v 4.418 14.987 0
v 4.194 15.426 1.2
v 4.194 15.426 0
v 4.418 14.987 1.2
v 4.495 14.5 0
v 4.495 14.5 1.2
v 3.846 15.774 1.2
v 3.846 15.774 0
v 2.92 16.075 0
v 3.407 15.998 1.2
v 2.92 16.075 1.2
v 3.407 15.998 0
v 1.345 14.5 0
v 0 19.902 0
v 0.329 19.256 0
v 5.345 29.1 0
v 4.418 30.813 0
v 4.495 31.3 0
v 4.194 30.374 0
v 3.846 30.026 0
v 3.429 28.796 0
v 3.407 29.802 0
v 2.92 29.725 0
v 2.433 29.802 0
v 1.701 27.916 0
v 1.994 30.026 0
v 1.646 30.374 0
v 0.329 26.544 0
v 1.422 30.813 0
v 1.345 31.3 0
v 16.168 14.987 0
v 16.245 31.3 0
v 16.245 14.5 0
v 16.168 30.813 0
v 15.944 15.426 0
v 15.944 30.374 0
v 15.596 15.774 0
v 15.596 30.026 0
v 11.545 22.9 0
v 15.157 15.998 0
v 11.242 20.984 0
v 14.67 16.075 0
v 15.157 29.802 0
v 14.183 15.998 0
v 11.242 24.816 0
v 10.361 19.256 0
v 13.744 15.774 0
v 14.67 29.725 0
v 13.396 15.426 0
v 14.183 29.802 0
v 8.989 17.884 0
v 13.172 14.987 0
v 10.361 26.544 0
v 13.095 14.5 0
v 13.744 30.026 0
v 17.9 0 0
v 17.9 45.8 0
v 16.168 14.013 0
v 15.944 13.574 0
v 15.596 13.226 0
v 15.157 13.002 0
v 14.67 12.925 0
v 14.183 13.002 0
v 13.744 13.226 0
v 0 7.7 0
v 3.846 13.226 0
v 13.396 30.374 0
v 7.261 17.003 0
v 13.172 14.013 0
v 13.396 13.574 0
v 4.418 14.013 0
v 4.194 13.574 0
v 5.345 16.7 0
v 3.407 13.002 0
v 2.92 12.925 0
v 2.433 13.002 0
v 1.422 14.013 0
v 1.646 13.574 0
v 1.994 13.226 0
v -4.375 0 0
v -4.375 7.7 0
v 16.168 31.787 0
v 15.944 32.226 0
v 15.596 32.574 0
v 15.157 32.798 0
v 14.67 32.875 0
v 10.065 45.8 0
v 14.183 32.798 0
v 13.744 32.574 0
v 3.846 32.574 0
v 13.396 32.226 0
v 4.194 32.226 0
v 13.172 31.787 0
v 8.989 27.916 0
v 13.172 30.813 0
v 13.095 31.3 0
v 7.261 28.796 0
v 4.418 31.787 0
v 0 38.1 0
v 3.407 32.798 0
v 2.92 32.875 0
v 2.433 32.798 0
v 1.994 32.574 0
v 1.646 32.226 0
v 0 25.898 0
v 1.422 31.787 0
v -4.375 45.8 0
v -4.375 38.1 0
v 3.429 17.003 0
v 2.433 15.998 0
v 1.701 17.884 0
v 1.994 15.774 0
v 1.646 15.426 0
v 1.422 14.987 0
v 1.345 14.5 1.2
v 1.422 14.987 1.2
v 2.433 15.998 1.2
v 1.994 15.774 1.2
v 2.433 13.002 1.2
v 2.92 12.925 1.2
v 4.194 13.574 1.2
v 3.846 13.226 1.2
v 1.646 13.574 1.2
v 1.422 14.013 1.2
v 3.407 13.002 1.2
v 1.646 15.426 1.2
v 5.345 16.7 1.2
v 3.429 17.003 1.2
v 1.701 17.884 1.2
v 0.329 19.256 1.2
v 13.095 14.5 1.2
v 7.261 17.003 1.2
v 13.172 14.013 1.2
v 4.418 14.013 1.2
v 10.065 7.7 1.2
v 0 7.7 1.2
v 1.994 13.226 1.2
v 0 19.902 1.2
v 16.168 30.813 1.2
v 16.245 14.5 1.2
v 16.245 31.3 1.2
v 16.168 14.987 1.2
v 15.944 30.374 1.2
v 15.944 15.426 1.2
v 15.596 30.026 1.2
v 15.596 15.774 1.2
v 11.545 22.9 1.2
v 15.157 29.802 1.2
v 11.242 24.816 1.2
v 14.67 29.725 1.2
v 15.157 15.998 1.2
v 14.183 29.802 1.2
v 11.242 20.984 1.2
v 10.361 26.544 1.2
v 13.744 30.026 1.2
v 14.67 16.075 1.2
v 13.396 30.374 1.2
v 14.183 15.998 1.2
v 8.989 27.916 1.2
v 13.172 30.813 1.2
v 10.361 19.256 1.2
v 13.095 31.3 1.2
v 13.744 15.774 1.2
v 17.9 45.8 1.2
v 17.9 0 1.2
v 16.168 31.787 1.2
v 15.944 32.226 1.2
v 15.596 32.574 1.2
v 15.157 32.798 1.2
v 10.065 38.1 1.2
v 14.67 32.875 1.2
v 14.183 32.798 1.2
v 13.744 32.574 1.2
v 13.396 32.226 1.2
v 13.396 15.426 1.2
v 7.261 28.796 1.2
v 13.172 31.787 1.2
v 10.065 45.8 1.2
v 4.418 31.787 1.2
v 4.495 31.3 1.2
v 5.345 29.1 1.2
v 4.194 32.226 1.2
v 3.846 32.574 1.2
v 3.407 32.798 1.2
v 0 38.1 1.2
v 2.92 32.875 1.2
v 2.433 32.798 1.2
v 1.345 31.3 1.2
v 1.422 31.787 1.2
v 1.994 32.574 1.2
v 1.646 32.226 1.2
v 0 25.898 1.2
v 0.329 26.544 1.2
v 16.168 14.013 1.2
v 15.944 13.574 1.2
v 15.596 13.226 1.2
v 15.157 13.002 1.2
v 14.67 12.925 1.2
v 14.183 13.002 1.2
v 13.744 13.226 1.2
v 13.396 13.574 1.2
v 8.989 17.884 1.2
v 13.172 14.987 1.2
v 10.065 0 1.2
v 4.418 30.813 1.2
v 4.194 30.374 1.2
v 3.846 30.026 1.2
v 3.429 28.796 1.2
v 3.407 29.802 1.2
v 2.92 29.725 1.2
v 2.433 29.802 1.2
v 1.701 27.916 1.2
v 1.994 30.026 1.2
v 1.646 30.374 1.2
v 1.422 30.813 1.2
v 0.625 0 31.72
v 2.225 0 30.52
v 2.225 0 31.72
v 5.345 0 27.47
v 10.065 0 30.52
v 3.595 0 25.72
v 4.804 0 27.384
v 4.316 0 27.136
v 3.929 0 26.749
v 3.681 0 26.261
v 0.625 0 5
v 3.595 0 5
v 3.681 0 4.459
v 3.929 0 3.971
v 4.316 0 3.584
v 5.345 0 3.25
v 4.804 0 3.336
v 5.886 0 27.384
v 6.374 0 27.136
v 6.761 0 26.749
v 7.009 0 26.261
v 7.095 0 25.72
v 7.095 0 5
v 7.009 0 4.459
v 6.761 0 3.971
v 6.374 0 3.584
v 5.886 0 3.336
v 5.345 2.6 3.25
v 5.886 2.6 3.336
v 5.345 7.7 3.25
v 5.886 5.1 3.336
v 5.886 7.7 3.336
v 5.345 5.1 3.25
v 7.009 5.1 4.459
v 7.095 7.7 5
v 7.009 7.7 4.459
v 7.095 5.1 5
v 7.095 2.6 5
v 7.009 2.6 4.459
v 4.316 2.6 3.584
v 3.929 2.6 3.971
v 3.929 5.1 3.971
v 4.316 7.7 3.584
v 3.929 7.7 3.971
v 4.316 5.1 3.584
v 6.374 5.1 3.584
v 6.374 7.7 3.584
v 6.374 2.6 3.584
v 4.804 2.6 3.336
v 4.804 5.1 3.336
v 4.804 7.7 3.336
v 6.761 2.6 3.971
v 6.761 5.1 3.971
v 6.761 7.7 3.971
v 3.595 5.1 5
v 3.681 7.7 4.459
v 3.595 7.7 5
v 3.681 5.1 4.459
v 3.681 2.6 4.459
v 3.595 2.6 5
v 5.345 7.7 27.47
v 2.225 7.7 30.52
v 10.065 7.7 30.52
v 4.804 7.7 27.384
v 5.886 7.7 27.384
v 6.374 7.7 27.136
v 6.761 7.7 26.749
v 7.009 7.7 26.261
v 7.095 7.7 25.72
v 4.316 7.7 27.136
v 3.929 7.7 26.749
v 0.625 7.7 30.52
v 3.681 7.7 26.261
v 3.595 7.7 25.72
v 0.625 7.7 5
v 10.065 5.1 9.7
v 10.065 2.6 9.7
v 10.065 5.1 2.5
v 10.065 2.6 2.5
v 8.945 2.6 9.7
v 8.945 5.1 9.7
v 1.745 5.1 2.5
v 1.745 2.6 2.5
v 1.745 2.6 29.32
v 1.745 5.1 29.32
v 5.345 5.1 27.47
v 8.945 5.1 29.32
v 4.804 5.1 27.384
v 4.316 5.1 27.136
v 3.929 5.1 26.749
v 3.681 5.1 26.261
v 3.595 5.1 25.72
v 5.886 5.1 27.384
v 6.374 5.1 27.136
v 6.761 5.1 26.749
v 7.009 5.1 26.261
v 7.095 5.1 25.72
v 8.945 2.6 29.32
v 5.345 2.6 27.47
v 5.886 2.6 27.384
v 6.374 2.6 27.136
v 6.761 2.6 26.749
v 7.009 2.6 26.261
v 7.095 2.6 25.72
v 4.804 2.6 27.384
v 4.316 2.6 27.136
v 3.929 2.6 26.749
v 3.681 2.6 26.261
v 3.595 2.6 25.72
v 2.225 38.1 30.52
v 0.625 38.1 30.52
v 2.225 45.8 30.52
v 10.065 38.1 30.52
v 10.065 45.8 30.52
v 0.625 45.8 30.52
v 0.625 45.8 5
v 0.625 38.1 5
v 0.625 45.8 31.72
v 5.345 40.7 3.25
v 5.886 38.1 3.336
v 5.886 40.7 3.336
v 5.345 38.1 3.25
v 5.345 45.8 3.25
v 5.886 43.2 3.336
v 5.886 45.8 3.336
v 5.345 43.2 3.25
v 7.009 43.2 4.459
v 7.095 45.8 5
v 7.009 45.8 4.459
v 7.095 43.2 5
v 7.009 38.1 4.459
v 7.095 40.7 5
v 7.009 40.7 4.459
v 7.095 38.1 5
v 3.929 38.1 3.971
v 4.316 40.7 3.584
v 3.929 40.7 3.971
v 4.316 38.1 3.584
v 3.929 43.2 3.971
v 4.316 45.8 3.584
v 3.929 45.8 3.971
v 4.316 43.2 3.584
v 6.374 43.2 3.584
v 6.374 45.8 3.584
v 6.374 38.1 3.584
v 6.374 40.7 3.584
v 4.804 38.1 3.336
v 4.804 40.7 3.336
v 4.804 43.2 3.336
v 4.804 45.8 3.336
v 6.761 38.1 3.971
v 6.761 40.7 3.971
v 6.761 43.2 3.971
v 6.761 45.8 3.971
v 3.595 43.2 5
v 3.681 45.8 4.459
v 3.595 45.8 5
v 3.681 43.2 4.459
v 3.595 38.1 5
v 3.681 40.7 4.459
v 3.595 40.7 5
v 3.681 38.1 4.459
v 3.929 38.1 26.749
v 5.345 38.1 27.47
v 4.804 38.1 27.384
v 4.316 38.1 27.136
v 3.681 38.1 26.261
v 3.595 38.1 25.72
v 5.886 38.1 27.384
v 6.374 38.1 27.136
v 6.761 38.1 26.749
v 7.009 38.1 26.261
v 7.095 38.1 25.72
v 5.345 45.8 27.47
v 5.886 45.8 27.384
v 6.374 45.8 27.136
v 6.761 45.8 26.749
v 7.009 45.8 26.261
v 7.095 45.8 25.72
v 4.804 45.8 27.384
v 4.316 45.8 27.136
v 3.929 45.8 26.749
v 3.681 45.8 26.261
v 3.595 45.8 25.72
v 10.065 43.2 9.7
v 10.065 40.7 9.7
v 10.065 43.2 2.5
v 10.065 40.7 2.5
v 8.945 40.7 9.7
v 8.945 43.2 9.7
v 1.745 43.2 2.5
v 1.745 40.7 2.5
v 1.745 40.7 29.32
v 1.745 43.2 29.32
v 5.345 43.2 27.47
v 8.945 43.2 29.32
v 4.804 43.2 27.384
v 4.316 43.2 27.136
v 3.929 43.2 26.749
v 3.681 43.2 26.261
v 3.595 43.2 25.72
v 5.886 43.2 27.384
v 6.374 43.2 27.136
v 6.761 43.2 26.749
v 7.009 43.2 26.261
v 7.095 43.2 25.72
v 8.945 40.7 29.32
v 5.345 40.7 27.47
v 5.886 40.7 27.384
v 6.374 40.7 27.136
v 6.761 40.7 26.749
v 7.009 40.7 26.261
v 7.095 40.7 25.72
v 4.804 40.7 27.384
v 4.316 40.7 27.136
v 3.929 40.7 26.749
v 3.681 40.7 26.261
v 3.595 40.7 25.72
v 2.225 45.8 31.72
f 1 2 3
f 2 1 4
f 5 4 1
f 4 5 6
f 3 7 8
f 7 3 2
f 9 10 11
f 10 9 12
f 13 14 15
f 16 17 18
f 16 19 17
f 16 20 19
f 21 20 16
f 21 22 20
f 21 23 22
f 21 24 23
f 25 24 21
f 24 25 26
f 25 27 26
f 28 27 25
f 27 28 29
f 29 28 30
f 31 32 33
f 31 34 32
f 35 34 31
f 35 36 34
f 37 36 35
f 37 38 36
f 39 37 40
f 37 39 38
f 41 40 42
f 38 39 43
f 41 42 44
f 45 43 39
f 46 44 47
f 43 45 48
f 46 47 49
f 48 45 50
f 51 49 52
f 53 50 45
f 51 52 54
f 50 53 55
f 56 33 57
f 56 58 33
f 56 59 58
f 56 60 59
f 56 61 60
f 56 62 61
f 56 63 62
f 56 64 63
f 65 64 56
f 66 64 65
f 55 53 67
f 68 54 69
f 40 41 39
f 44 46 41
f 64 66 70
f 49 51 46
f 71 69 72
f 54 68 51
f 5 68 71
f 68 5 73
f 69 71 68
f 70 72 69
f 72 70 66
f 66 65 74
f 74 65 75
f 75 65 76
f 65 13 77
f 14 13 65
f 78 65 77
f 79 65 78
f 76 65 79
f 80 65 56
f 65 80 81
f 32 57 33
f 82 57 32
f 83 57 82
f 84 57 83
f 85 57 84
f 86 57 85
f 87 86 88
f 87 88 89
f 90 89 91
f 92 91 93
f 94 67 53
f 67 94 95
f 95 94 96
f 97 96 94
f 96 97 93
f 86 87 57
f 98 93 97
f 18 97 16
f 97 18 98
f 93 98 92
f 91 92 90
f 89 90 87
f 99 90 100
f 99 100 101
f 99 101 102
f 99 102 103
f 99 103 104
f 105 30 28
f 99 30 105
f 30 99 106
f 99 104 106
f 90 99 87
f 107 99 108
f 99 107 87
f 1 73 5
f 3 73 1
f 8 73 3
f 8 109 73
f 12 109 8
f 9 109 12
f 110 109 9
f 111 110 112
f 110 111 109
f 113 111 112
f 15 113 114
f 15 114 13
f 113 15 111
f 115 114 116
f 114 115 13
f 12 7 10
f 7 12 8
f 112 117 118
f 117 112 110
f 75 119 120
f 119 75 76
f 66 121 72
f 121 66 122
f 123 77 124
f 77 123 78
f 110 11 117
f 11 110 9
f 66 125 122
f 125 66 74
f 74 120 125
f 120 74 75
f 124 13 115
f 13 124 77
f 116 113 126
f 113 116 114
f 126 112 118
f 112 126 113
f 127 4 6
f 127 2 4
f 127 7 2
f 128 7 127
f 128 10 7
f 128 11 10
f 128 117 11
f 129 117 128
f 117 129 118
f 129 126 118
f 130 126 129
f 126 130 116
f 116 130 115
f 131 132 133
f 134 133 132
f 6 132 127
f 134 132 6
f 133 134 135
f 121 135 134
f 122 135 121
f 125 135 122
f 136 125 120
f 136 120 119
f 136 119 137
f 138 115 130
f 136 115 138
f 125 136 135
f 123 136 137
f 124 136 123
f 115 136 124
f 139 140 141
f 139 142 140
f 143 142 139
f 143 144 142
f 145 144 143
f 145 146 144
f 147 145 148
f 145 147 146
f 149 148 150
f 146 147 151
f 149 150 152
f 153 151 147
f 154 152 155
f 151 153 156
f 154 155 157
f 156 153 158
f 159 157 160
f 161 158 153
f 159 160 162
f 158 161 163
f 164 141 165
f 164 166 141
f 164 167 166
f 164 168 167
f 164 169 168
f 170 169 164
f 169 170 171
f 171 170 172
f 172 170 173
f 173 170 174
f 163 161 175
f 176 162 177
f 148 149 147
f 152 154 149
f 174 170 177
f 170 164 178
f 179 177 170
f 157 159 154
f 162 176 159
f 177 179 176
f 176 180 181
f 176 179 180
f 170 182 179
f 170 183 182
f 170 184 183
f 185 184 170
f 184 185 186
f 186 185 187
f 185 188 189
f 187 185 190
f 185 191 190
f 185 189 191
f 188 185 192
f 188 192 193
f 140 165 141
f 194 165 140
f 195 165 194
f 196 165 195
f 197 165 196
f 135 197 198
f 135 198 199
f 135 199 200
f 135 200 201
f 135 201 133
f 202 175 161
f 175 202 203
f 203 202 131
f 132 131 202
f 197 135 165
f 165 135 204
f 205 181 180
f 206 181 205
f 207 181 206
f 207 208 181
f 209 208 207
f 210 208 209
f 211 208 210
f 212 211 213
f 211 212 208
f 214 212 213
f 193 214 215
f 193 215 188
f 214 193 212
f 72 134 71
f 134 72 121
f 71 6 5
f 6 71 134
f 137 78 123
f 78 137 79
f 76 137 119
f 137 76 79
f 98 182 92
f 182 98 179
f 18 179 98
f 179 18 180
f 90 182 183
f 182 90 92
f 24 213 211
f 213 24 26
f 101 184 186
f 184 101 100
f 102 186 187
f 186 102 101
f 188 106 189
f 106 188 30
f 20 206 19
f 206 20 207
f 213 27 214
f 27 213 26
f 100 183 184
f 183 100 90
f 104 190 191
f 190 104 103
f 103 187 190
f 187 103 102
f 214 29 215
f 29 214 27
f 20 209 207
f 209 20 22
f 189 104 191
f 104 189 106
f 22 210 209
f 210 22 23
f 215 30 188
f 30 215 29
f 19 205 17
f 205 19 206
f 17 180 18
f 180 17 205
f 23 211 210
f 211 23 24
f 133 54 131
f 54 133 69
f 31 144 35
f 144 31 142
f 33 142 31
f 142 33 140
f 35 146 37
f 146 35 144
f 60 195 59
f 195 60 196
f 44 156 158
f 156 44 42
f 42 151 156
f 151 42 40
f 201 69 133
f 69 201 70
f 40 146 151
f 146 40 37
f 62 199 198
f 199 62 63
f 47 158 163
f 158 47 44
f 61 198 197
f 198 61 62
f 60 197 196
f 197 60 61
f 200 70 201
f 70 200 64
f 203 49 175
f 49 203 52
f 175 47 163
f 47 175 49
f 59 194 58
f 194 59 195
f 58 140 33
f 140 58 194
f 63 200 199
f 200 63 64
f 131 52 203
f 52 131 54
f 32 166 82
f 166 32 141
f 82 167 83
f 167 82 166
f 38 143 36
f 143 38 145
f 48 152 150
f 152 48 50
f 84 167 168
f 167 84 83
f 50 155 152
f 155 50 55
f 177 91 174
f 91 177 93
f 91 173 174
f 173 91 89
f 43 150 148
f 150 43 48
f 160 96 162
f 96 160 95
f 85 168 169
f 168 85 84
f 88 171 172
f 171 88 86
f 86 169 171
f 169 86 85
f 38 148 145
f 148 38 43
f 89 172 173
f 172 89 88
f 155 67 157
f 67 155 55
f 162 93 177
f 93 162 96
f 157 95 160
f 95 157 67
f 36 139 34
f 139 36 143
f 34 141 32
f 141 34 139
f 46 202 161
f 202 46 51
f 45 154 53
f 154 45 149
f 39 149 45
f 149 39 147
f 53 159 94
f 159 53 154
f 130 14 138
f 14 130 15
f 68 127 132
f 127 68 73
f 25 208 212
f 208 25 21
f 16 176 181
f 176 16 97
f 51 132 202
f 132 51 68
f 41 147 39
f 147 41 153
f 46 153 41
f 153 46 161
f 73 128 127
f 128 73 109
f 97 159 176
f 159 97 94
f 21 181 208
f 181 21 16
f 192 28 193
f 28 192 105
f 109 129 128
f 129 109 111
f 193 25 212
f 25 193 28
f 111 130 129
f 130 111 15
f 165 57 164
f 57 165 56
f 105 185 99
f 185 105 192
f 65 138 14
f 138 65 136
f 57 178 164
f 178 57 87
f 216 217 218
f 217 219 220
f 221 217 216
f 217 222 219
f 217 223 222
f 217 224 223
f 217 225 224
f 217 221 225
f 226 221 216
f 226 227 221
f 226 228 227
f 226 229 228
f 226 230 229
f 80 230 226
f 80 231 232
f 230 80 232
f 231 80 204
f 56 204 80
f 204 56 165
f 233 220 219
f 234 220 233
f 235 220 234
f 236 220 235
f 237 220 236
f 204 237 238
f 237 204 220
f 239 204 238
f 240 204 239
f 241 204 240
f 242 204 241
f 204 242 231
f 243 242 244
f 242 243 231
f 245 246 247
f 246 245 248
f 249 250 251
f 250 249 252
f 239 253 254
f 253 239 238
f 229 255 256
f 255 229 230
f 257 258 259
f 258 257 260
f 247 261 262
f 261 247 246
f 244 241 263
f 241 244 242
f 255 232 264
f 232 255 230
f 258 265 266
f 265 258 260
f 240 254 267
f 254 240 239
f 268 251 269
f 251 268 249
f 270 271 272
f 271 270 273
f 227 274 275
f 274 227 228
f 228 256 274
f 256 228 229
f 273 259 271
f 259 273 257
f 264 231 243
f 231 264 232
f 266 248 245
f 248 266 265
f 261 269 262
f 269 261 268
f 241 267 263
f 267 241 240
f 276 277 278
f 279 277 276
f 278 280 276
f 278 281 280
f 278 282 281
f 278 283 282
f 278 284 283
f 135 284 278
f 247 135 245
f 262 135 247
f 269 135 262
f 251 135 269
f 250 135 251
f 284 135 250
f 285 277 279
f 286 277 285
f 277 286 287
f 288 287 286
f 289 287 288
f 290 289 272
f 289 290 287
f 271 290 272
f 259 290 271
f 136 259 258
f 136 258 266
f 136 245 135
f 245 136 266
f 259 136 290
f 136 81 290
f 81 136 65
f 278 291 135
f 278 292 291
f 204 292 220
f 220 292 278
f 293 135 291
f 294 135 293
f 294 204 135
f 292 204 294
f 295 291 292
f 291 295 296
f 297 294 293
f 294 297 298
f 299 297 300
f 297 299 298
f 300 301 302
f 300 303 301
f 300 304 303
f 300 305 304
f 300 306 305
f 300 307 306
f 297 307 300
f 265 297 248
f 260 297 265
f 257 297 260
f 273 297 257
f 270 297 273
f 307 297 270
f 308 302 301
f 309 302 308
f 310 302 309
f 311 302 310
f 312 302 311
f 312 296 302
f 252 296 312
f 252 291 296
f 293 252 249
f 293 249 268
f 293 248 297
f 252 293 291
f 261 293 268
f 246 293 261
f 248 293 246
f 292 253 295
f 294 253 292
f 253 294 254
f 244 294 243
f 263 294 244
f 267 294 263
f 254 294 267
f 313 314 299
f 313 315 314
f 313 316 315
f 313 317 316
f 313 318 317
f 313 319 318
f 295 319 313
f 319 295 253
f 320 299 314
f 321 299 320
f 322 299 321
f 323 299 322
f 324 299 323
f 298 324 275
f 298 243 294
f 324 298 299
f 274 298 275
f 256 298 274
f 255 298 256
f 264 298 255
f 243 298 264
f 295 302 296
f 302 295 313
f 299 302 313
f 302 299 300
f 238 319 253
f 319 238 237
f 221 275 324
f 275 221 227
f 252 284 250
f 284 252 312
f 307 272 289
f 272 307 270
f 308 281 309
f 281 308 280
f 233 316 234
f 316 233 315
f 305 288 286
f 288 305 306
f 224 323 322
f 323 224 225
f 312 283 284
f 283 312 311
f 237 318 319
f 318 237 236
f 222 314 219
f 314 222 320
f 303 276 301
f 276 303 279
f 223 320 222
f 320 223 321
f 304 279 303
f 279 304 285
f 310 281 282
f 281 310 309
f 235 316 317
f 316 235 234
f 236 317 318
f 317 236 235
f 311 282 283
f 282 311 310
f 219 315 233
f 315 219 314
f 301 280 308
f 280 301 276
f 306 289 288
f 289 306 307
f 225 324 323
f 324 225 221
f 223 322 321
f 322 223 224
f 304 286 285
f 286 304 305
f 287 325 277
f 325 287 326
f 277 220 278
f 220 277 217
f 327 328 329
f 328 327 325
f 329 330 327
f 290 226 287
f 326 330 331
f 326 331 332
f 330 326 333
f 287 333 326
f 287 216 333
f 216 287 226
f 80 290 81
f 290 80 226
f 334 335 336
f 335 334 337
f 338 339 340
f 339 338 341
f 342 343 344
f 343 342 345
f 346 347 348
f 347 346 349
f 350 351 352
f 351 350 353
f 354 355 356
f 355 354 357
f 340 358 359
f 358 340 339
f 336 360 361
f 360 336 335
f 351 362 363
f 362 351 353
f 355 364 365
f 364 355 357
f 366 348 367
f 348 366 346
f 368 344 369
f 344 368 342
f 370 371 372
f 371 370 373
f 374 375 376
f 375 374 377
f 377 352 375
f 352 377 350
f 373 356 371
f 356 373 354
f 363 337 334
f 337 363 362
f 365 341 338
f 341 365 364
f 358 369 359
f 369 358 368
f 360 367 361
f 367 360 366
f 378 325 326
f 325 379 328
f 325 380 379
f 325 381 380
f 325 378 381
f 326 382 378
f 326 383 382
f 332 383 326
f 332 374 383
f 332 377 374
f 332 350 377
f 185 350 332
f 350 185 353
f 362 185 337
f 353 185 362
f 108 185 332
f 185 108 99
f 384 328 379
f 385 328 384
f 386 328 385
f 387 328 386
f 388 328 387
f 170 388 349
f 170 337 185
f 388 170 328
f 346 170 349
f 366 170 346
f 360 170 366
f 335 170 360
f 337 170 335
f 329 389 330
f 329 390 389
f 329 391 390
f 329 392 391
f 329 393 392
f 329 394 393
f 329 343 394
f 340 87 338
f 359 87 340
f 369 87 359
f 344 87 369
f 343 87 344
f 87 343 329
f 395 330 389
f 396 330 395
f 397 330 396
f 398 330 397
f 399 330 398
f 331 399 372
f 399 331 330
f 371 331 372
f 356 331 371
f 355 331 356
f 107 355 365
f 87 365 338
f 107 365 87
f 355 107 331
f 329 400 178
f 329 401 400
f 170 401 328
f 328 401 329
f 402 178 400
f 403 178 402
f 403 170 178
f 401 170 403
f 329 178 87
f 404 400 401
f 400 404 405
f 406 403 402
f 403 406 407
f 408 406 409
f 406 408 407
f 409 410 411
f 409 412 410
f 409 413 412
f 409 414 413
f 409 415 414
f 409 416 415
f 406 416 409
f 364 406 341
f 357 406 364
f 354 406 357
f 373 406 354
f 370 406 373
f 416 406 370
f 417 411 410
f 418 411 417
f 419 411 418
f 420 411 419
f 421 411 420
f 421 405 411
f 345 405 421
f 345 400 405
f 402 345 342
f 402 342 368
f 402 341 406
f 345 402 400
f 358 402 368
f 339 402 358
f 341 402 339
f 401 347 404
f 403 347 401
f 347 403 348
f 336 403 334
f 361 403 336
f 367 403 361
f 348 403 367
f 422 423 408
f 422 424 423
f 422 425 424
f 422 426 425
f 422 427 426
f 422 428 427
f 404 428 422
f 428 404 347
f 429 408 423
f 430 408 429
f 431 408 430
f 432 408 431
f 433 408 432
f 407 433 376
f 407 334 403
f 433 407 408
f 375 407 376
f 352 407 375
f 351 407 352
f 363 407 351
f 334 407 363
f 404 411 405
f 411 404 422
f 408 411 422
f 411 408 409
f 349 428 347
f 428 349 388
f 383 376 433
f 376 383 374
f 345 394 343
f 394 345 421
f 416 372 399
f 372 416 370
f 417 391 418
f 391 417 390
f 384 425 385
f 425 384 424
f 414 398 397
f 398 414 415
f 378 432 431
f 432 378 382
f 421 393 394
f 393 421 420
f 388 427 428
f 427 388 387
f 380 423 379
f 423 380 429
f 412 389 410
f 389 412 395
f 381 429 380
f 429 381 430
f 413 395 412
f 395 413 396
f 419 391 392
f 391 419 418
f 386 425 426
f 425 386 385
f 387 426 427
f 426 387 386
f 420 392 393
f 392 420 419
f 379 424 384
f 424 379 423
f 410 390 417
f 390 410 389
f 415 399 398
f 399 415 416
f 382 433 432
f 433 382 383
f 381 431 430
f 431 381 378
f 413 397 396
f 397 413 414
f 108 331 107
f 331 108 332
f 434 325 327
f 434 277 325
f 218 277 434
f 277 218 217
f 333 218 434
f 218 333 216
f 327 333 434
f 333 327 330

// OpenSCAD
// following params are from top_plate_nobracket.scad
mainPlateThickness = 1.2; // versions = [1.2]
mainPlateDimensions = [56, 45.8, mainPlateThickness];
usbDimensions = [10.36, 13, mainPlateThickness];

smallDia = 3.15;
quadHoleGaps = [11.75, 16.8];
pairQuadHoleXGap = 14.5;
pairHoleYGap = 33.45;
bigHoleOffset = [2.425, quadHoleGaps[1]/2];
bigHoleDia = 12.4;

// this is basically the padding of the gap between the pair of mounting holes and the center of coupler along x
hbot=4.72; // versions = [4, 5, 4.72]
bottomPlateThickness=1.2; // [1, 1.2]
pairHoleCouplerXGap = pairQuadHoleXGap + bigHoleOffset[0]; // 16.925
pairHoleHotendXGap = 11; // versions = [9,12,11]
hotendY = 30; // size of hotend (heatsink talaga) along y axis
hotendZ = 30 + 0.12; // size of hotend (heatsink talaga) along z axis
hotendX = 17.9; //
verticalHeight=hotendZ + 0.4; // hotendZ = 30, kaya may + kasi maybridge na lulundo

topBeamThickness = 1.2; //ito ang bridge para hindi sakang ang verticals
hotendEdgeYOffset = (mainPlateDimensions[1] - hotendY)/2 - 0.2; echo("heYOff", hotendEdgeYOffset); // -0.2 kasi sobrang sikip ng true value

quadHoleDatumEdgeXOffset=2.92; // 2.92 is manually measured
bigHoleHotendEdgeXGap = quadHoleDatumEdgeXOffset + bigHoleOffset[0] - hbot; // x gap from center of coupler/filament hole to the edge of hotend
bottomPlateDimensions=[hotendX, mainPlateDimensions[1], bottomPlateThickness];

module bottomPlate(sizePlate=bottomPlateDimensions, d=smallDia, hcXGap=pairHoleCouplerXGap, heYOff=hotendEdgeYOffset, hh=bottomPlateDimensions[2], hbot=hbot, bho=bigHoleOffset, qhg=quadHoleGaps, chXGap=bigHoleHotendEdgeXGap) {
    module bottomPlateSolid() {
        difference() {
            union() {
                bottomPlateHorizontal();
                bottomPlateSide();
                translate([0, sizePlate[1]-heYOff, 0])
                    bottomPlateSide();
                translate([chXGap, 0, verticalHeight]) // bridge between the verticals
                    //bottomPlateHorizontal(dPlate=[2,mainPlateDimensions[1],2]);
                    cube([1.6, sizePlate[1], topBeamThickness]);
            };
            translate([hbot, (sizePlate[1]-pairHoleYGap)/2,0])
                bottomPlateHoles();
        };
    };
    bottomPlateSolid(); //bottomPlate amounts to this

    module bottomPlateHoles(d=smallDia, h=hh, db=bigHoleDia) {
        for (x=[0, qhg[0]], y=[0, qhg[1]]) {
            translate([x, y, 0]) cylinder(d=d, h=h, $fn=20);
        };
        translate([bho[0],bho[1],0]) cylinder(d=db, h=h);
    }; //bottomPlateHoles();

    module bottomPlateHorizontal(dPlate=sizePlate, h=sizePlate[2], qhXOff=quadHoleDatumEdgeXOffset) {
        difference() {
            cube([dPlate[0], dPlate[1], h]);
            holeAssemblyYOffset = dPlate[1]/2 - bho[1]; // bho[1] shouldn't be halved kasi gitna na kapag binawas ito
            //echo("dPlate[1]", dPlate[1], "holeAssemblyYOffset", holeAssemblyYOffset);
            translate([qhXOff, holeAssemblyYOffset, 0])
                bottomPlateHoles(h=h);
        };
    };
    bottomPlateHorizontal();

    module bottomPlateSide(base=sizePlate, s=hbot) {
        //cube([hcXGap + 2*hbot, heYOff, sizePlate[2]]); // this is where the hbot as padding kicks in
        chamferHeight=2*hbot;
        // distance of the "zero" nut position from the base
        nutBaseOffset=5; // versions = [6, 5]
        nutDia=7.2; // versions = [6, 7, 6.4, 7.2]
        boltDia=3.5;
        nutHeight=2.5; // versions = [3, 2.5] // ito ang kapal ng _nakahiga_ na nut
        roofHeight=1.2;
        module bottomPlateVertical(s=s, h=verticalHeight, c=chamferHeight) {

            module bottomPlateChamfer(c=c) {
                translate([0,heYOff,0]) rotate([90,0,0])
                linear_extrude(height=heYOff) {
                        polygon(points=[[0,0],[0,c],[-c,0]]);
                }
            };
            bottomPlateChamfer(); //gotta call this if I want a chamfer

            module nutSlot(dn=nutDia, nh=nutHeight, db=boltDia, nih=nutBaseOffset, rh=roofHeight) {
            // nih means nut initial height (from base)
            nsYOff = (heYOff - nh)/2; // nutSlotOffset
            bsXOff = (dn - db)/2; // boltSlotXOffset
            bsY = (heYOff-nh)/2; // bolt slot Y thickness
            vSlotZ = h-rh-nih; // vertical slots height
                translate([s, 0, nih]) rotate([-90,0,0]) // horizontal hole at the column base
                    cylinder(h=heYOff, d=db, $fn=20);
                translate([s-dn/2, nsYOff, nih/2]) cube([s+dn/2, nh, dn]); // horizontal nut slot
                translate([s-dn/2, nsYOff, nih]) cube([dn, nh, vSlotZ]); // vertical nut slot
                translate([s-dn/2+bsXOff, 0, nih]) cube([db, bsY, vSlotZ-dn/2]); // vertical bolt slot 1
                translate([s-dn/2+bsXOff, heYOff-bsY, nih]) cube([db, bsY, vSlotZ-dn/2]); // vertical bolt slot 2
                translate([s, 0, h-rh-dn/2]) rotate([-90,0,0]) // horizontal hole at the column top
                    cylinder(h=heYOff, d=db, $fn=20);
            };
            //nutSlot(nh=2.5);
            difference() {
                cube([s*2, heYOff, h]); // this is vertical's external dimensions
                nutSlot(nh=2.5);
            };
        };
        translate([bigHoleHotendEdgeXGap, 0, 0])
        //translate([0, 0, 0])
            bottomPlateVertical(c=5); 
    };
    bottomPlateSide();
};
bottomPlate();
